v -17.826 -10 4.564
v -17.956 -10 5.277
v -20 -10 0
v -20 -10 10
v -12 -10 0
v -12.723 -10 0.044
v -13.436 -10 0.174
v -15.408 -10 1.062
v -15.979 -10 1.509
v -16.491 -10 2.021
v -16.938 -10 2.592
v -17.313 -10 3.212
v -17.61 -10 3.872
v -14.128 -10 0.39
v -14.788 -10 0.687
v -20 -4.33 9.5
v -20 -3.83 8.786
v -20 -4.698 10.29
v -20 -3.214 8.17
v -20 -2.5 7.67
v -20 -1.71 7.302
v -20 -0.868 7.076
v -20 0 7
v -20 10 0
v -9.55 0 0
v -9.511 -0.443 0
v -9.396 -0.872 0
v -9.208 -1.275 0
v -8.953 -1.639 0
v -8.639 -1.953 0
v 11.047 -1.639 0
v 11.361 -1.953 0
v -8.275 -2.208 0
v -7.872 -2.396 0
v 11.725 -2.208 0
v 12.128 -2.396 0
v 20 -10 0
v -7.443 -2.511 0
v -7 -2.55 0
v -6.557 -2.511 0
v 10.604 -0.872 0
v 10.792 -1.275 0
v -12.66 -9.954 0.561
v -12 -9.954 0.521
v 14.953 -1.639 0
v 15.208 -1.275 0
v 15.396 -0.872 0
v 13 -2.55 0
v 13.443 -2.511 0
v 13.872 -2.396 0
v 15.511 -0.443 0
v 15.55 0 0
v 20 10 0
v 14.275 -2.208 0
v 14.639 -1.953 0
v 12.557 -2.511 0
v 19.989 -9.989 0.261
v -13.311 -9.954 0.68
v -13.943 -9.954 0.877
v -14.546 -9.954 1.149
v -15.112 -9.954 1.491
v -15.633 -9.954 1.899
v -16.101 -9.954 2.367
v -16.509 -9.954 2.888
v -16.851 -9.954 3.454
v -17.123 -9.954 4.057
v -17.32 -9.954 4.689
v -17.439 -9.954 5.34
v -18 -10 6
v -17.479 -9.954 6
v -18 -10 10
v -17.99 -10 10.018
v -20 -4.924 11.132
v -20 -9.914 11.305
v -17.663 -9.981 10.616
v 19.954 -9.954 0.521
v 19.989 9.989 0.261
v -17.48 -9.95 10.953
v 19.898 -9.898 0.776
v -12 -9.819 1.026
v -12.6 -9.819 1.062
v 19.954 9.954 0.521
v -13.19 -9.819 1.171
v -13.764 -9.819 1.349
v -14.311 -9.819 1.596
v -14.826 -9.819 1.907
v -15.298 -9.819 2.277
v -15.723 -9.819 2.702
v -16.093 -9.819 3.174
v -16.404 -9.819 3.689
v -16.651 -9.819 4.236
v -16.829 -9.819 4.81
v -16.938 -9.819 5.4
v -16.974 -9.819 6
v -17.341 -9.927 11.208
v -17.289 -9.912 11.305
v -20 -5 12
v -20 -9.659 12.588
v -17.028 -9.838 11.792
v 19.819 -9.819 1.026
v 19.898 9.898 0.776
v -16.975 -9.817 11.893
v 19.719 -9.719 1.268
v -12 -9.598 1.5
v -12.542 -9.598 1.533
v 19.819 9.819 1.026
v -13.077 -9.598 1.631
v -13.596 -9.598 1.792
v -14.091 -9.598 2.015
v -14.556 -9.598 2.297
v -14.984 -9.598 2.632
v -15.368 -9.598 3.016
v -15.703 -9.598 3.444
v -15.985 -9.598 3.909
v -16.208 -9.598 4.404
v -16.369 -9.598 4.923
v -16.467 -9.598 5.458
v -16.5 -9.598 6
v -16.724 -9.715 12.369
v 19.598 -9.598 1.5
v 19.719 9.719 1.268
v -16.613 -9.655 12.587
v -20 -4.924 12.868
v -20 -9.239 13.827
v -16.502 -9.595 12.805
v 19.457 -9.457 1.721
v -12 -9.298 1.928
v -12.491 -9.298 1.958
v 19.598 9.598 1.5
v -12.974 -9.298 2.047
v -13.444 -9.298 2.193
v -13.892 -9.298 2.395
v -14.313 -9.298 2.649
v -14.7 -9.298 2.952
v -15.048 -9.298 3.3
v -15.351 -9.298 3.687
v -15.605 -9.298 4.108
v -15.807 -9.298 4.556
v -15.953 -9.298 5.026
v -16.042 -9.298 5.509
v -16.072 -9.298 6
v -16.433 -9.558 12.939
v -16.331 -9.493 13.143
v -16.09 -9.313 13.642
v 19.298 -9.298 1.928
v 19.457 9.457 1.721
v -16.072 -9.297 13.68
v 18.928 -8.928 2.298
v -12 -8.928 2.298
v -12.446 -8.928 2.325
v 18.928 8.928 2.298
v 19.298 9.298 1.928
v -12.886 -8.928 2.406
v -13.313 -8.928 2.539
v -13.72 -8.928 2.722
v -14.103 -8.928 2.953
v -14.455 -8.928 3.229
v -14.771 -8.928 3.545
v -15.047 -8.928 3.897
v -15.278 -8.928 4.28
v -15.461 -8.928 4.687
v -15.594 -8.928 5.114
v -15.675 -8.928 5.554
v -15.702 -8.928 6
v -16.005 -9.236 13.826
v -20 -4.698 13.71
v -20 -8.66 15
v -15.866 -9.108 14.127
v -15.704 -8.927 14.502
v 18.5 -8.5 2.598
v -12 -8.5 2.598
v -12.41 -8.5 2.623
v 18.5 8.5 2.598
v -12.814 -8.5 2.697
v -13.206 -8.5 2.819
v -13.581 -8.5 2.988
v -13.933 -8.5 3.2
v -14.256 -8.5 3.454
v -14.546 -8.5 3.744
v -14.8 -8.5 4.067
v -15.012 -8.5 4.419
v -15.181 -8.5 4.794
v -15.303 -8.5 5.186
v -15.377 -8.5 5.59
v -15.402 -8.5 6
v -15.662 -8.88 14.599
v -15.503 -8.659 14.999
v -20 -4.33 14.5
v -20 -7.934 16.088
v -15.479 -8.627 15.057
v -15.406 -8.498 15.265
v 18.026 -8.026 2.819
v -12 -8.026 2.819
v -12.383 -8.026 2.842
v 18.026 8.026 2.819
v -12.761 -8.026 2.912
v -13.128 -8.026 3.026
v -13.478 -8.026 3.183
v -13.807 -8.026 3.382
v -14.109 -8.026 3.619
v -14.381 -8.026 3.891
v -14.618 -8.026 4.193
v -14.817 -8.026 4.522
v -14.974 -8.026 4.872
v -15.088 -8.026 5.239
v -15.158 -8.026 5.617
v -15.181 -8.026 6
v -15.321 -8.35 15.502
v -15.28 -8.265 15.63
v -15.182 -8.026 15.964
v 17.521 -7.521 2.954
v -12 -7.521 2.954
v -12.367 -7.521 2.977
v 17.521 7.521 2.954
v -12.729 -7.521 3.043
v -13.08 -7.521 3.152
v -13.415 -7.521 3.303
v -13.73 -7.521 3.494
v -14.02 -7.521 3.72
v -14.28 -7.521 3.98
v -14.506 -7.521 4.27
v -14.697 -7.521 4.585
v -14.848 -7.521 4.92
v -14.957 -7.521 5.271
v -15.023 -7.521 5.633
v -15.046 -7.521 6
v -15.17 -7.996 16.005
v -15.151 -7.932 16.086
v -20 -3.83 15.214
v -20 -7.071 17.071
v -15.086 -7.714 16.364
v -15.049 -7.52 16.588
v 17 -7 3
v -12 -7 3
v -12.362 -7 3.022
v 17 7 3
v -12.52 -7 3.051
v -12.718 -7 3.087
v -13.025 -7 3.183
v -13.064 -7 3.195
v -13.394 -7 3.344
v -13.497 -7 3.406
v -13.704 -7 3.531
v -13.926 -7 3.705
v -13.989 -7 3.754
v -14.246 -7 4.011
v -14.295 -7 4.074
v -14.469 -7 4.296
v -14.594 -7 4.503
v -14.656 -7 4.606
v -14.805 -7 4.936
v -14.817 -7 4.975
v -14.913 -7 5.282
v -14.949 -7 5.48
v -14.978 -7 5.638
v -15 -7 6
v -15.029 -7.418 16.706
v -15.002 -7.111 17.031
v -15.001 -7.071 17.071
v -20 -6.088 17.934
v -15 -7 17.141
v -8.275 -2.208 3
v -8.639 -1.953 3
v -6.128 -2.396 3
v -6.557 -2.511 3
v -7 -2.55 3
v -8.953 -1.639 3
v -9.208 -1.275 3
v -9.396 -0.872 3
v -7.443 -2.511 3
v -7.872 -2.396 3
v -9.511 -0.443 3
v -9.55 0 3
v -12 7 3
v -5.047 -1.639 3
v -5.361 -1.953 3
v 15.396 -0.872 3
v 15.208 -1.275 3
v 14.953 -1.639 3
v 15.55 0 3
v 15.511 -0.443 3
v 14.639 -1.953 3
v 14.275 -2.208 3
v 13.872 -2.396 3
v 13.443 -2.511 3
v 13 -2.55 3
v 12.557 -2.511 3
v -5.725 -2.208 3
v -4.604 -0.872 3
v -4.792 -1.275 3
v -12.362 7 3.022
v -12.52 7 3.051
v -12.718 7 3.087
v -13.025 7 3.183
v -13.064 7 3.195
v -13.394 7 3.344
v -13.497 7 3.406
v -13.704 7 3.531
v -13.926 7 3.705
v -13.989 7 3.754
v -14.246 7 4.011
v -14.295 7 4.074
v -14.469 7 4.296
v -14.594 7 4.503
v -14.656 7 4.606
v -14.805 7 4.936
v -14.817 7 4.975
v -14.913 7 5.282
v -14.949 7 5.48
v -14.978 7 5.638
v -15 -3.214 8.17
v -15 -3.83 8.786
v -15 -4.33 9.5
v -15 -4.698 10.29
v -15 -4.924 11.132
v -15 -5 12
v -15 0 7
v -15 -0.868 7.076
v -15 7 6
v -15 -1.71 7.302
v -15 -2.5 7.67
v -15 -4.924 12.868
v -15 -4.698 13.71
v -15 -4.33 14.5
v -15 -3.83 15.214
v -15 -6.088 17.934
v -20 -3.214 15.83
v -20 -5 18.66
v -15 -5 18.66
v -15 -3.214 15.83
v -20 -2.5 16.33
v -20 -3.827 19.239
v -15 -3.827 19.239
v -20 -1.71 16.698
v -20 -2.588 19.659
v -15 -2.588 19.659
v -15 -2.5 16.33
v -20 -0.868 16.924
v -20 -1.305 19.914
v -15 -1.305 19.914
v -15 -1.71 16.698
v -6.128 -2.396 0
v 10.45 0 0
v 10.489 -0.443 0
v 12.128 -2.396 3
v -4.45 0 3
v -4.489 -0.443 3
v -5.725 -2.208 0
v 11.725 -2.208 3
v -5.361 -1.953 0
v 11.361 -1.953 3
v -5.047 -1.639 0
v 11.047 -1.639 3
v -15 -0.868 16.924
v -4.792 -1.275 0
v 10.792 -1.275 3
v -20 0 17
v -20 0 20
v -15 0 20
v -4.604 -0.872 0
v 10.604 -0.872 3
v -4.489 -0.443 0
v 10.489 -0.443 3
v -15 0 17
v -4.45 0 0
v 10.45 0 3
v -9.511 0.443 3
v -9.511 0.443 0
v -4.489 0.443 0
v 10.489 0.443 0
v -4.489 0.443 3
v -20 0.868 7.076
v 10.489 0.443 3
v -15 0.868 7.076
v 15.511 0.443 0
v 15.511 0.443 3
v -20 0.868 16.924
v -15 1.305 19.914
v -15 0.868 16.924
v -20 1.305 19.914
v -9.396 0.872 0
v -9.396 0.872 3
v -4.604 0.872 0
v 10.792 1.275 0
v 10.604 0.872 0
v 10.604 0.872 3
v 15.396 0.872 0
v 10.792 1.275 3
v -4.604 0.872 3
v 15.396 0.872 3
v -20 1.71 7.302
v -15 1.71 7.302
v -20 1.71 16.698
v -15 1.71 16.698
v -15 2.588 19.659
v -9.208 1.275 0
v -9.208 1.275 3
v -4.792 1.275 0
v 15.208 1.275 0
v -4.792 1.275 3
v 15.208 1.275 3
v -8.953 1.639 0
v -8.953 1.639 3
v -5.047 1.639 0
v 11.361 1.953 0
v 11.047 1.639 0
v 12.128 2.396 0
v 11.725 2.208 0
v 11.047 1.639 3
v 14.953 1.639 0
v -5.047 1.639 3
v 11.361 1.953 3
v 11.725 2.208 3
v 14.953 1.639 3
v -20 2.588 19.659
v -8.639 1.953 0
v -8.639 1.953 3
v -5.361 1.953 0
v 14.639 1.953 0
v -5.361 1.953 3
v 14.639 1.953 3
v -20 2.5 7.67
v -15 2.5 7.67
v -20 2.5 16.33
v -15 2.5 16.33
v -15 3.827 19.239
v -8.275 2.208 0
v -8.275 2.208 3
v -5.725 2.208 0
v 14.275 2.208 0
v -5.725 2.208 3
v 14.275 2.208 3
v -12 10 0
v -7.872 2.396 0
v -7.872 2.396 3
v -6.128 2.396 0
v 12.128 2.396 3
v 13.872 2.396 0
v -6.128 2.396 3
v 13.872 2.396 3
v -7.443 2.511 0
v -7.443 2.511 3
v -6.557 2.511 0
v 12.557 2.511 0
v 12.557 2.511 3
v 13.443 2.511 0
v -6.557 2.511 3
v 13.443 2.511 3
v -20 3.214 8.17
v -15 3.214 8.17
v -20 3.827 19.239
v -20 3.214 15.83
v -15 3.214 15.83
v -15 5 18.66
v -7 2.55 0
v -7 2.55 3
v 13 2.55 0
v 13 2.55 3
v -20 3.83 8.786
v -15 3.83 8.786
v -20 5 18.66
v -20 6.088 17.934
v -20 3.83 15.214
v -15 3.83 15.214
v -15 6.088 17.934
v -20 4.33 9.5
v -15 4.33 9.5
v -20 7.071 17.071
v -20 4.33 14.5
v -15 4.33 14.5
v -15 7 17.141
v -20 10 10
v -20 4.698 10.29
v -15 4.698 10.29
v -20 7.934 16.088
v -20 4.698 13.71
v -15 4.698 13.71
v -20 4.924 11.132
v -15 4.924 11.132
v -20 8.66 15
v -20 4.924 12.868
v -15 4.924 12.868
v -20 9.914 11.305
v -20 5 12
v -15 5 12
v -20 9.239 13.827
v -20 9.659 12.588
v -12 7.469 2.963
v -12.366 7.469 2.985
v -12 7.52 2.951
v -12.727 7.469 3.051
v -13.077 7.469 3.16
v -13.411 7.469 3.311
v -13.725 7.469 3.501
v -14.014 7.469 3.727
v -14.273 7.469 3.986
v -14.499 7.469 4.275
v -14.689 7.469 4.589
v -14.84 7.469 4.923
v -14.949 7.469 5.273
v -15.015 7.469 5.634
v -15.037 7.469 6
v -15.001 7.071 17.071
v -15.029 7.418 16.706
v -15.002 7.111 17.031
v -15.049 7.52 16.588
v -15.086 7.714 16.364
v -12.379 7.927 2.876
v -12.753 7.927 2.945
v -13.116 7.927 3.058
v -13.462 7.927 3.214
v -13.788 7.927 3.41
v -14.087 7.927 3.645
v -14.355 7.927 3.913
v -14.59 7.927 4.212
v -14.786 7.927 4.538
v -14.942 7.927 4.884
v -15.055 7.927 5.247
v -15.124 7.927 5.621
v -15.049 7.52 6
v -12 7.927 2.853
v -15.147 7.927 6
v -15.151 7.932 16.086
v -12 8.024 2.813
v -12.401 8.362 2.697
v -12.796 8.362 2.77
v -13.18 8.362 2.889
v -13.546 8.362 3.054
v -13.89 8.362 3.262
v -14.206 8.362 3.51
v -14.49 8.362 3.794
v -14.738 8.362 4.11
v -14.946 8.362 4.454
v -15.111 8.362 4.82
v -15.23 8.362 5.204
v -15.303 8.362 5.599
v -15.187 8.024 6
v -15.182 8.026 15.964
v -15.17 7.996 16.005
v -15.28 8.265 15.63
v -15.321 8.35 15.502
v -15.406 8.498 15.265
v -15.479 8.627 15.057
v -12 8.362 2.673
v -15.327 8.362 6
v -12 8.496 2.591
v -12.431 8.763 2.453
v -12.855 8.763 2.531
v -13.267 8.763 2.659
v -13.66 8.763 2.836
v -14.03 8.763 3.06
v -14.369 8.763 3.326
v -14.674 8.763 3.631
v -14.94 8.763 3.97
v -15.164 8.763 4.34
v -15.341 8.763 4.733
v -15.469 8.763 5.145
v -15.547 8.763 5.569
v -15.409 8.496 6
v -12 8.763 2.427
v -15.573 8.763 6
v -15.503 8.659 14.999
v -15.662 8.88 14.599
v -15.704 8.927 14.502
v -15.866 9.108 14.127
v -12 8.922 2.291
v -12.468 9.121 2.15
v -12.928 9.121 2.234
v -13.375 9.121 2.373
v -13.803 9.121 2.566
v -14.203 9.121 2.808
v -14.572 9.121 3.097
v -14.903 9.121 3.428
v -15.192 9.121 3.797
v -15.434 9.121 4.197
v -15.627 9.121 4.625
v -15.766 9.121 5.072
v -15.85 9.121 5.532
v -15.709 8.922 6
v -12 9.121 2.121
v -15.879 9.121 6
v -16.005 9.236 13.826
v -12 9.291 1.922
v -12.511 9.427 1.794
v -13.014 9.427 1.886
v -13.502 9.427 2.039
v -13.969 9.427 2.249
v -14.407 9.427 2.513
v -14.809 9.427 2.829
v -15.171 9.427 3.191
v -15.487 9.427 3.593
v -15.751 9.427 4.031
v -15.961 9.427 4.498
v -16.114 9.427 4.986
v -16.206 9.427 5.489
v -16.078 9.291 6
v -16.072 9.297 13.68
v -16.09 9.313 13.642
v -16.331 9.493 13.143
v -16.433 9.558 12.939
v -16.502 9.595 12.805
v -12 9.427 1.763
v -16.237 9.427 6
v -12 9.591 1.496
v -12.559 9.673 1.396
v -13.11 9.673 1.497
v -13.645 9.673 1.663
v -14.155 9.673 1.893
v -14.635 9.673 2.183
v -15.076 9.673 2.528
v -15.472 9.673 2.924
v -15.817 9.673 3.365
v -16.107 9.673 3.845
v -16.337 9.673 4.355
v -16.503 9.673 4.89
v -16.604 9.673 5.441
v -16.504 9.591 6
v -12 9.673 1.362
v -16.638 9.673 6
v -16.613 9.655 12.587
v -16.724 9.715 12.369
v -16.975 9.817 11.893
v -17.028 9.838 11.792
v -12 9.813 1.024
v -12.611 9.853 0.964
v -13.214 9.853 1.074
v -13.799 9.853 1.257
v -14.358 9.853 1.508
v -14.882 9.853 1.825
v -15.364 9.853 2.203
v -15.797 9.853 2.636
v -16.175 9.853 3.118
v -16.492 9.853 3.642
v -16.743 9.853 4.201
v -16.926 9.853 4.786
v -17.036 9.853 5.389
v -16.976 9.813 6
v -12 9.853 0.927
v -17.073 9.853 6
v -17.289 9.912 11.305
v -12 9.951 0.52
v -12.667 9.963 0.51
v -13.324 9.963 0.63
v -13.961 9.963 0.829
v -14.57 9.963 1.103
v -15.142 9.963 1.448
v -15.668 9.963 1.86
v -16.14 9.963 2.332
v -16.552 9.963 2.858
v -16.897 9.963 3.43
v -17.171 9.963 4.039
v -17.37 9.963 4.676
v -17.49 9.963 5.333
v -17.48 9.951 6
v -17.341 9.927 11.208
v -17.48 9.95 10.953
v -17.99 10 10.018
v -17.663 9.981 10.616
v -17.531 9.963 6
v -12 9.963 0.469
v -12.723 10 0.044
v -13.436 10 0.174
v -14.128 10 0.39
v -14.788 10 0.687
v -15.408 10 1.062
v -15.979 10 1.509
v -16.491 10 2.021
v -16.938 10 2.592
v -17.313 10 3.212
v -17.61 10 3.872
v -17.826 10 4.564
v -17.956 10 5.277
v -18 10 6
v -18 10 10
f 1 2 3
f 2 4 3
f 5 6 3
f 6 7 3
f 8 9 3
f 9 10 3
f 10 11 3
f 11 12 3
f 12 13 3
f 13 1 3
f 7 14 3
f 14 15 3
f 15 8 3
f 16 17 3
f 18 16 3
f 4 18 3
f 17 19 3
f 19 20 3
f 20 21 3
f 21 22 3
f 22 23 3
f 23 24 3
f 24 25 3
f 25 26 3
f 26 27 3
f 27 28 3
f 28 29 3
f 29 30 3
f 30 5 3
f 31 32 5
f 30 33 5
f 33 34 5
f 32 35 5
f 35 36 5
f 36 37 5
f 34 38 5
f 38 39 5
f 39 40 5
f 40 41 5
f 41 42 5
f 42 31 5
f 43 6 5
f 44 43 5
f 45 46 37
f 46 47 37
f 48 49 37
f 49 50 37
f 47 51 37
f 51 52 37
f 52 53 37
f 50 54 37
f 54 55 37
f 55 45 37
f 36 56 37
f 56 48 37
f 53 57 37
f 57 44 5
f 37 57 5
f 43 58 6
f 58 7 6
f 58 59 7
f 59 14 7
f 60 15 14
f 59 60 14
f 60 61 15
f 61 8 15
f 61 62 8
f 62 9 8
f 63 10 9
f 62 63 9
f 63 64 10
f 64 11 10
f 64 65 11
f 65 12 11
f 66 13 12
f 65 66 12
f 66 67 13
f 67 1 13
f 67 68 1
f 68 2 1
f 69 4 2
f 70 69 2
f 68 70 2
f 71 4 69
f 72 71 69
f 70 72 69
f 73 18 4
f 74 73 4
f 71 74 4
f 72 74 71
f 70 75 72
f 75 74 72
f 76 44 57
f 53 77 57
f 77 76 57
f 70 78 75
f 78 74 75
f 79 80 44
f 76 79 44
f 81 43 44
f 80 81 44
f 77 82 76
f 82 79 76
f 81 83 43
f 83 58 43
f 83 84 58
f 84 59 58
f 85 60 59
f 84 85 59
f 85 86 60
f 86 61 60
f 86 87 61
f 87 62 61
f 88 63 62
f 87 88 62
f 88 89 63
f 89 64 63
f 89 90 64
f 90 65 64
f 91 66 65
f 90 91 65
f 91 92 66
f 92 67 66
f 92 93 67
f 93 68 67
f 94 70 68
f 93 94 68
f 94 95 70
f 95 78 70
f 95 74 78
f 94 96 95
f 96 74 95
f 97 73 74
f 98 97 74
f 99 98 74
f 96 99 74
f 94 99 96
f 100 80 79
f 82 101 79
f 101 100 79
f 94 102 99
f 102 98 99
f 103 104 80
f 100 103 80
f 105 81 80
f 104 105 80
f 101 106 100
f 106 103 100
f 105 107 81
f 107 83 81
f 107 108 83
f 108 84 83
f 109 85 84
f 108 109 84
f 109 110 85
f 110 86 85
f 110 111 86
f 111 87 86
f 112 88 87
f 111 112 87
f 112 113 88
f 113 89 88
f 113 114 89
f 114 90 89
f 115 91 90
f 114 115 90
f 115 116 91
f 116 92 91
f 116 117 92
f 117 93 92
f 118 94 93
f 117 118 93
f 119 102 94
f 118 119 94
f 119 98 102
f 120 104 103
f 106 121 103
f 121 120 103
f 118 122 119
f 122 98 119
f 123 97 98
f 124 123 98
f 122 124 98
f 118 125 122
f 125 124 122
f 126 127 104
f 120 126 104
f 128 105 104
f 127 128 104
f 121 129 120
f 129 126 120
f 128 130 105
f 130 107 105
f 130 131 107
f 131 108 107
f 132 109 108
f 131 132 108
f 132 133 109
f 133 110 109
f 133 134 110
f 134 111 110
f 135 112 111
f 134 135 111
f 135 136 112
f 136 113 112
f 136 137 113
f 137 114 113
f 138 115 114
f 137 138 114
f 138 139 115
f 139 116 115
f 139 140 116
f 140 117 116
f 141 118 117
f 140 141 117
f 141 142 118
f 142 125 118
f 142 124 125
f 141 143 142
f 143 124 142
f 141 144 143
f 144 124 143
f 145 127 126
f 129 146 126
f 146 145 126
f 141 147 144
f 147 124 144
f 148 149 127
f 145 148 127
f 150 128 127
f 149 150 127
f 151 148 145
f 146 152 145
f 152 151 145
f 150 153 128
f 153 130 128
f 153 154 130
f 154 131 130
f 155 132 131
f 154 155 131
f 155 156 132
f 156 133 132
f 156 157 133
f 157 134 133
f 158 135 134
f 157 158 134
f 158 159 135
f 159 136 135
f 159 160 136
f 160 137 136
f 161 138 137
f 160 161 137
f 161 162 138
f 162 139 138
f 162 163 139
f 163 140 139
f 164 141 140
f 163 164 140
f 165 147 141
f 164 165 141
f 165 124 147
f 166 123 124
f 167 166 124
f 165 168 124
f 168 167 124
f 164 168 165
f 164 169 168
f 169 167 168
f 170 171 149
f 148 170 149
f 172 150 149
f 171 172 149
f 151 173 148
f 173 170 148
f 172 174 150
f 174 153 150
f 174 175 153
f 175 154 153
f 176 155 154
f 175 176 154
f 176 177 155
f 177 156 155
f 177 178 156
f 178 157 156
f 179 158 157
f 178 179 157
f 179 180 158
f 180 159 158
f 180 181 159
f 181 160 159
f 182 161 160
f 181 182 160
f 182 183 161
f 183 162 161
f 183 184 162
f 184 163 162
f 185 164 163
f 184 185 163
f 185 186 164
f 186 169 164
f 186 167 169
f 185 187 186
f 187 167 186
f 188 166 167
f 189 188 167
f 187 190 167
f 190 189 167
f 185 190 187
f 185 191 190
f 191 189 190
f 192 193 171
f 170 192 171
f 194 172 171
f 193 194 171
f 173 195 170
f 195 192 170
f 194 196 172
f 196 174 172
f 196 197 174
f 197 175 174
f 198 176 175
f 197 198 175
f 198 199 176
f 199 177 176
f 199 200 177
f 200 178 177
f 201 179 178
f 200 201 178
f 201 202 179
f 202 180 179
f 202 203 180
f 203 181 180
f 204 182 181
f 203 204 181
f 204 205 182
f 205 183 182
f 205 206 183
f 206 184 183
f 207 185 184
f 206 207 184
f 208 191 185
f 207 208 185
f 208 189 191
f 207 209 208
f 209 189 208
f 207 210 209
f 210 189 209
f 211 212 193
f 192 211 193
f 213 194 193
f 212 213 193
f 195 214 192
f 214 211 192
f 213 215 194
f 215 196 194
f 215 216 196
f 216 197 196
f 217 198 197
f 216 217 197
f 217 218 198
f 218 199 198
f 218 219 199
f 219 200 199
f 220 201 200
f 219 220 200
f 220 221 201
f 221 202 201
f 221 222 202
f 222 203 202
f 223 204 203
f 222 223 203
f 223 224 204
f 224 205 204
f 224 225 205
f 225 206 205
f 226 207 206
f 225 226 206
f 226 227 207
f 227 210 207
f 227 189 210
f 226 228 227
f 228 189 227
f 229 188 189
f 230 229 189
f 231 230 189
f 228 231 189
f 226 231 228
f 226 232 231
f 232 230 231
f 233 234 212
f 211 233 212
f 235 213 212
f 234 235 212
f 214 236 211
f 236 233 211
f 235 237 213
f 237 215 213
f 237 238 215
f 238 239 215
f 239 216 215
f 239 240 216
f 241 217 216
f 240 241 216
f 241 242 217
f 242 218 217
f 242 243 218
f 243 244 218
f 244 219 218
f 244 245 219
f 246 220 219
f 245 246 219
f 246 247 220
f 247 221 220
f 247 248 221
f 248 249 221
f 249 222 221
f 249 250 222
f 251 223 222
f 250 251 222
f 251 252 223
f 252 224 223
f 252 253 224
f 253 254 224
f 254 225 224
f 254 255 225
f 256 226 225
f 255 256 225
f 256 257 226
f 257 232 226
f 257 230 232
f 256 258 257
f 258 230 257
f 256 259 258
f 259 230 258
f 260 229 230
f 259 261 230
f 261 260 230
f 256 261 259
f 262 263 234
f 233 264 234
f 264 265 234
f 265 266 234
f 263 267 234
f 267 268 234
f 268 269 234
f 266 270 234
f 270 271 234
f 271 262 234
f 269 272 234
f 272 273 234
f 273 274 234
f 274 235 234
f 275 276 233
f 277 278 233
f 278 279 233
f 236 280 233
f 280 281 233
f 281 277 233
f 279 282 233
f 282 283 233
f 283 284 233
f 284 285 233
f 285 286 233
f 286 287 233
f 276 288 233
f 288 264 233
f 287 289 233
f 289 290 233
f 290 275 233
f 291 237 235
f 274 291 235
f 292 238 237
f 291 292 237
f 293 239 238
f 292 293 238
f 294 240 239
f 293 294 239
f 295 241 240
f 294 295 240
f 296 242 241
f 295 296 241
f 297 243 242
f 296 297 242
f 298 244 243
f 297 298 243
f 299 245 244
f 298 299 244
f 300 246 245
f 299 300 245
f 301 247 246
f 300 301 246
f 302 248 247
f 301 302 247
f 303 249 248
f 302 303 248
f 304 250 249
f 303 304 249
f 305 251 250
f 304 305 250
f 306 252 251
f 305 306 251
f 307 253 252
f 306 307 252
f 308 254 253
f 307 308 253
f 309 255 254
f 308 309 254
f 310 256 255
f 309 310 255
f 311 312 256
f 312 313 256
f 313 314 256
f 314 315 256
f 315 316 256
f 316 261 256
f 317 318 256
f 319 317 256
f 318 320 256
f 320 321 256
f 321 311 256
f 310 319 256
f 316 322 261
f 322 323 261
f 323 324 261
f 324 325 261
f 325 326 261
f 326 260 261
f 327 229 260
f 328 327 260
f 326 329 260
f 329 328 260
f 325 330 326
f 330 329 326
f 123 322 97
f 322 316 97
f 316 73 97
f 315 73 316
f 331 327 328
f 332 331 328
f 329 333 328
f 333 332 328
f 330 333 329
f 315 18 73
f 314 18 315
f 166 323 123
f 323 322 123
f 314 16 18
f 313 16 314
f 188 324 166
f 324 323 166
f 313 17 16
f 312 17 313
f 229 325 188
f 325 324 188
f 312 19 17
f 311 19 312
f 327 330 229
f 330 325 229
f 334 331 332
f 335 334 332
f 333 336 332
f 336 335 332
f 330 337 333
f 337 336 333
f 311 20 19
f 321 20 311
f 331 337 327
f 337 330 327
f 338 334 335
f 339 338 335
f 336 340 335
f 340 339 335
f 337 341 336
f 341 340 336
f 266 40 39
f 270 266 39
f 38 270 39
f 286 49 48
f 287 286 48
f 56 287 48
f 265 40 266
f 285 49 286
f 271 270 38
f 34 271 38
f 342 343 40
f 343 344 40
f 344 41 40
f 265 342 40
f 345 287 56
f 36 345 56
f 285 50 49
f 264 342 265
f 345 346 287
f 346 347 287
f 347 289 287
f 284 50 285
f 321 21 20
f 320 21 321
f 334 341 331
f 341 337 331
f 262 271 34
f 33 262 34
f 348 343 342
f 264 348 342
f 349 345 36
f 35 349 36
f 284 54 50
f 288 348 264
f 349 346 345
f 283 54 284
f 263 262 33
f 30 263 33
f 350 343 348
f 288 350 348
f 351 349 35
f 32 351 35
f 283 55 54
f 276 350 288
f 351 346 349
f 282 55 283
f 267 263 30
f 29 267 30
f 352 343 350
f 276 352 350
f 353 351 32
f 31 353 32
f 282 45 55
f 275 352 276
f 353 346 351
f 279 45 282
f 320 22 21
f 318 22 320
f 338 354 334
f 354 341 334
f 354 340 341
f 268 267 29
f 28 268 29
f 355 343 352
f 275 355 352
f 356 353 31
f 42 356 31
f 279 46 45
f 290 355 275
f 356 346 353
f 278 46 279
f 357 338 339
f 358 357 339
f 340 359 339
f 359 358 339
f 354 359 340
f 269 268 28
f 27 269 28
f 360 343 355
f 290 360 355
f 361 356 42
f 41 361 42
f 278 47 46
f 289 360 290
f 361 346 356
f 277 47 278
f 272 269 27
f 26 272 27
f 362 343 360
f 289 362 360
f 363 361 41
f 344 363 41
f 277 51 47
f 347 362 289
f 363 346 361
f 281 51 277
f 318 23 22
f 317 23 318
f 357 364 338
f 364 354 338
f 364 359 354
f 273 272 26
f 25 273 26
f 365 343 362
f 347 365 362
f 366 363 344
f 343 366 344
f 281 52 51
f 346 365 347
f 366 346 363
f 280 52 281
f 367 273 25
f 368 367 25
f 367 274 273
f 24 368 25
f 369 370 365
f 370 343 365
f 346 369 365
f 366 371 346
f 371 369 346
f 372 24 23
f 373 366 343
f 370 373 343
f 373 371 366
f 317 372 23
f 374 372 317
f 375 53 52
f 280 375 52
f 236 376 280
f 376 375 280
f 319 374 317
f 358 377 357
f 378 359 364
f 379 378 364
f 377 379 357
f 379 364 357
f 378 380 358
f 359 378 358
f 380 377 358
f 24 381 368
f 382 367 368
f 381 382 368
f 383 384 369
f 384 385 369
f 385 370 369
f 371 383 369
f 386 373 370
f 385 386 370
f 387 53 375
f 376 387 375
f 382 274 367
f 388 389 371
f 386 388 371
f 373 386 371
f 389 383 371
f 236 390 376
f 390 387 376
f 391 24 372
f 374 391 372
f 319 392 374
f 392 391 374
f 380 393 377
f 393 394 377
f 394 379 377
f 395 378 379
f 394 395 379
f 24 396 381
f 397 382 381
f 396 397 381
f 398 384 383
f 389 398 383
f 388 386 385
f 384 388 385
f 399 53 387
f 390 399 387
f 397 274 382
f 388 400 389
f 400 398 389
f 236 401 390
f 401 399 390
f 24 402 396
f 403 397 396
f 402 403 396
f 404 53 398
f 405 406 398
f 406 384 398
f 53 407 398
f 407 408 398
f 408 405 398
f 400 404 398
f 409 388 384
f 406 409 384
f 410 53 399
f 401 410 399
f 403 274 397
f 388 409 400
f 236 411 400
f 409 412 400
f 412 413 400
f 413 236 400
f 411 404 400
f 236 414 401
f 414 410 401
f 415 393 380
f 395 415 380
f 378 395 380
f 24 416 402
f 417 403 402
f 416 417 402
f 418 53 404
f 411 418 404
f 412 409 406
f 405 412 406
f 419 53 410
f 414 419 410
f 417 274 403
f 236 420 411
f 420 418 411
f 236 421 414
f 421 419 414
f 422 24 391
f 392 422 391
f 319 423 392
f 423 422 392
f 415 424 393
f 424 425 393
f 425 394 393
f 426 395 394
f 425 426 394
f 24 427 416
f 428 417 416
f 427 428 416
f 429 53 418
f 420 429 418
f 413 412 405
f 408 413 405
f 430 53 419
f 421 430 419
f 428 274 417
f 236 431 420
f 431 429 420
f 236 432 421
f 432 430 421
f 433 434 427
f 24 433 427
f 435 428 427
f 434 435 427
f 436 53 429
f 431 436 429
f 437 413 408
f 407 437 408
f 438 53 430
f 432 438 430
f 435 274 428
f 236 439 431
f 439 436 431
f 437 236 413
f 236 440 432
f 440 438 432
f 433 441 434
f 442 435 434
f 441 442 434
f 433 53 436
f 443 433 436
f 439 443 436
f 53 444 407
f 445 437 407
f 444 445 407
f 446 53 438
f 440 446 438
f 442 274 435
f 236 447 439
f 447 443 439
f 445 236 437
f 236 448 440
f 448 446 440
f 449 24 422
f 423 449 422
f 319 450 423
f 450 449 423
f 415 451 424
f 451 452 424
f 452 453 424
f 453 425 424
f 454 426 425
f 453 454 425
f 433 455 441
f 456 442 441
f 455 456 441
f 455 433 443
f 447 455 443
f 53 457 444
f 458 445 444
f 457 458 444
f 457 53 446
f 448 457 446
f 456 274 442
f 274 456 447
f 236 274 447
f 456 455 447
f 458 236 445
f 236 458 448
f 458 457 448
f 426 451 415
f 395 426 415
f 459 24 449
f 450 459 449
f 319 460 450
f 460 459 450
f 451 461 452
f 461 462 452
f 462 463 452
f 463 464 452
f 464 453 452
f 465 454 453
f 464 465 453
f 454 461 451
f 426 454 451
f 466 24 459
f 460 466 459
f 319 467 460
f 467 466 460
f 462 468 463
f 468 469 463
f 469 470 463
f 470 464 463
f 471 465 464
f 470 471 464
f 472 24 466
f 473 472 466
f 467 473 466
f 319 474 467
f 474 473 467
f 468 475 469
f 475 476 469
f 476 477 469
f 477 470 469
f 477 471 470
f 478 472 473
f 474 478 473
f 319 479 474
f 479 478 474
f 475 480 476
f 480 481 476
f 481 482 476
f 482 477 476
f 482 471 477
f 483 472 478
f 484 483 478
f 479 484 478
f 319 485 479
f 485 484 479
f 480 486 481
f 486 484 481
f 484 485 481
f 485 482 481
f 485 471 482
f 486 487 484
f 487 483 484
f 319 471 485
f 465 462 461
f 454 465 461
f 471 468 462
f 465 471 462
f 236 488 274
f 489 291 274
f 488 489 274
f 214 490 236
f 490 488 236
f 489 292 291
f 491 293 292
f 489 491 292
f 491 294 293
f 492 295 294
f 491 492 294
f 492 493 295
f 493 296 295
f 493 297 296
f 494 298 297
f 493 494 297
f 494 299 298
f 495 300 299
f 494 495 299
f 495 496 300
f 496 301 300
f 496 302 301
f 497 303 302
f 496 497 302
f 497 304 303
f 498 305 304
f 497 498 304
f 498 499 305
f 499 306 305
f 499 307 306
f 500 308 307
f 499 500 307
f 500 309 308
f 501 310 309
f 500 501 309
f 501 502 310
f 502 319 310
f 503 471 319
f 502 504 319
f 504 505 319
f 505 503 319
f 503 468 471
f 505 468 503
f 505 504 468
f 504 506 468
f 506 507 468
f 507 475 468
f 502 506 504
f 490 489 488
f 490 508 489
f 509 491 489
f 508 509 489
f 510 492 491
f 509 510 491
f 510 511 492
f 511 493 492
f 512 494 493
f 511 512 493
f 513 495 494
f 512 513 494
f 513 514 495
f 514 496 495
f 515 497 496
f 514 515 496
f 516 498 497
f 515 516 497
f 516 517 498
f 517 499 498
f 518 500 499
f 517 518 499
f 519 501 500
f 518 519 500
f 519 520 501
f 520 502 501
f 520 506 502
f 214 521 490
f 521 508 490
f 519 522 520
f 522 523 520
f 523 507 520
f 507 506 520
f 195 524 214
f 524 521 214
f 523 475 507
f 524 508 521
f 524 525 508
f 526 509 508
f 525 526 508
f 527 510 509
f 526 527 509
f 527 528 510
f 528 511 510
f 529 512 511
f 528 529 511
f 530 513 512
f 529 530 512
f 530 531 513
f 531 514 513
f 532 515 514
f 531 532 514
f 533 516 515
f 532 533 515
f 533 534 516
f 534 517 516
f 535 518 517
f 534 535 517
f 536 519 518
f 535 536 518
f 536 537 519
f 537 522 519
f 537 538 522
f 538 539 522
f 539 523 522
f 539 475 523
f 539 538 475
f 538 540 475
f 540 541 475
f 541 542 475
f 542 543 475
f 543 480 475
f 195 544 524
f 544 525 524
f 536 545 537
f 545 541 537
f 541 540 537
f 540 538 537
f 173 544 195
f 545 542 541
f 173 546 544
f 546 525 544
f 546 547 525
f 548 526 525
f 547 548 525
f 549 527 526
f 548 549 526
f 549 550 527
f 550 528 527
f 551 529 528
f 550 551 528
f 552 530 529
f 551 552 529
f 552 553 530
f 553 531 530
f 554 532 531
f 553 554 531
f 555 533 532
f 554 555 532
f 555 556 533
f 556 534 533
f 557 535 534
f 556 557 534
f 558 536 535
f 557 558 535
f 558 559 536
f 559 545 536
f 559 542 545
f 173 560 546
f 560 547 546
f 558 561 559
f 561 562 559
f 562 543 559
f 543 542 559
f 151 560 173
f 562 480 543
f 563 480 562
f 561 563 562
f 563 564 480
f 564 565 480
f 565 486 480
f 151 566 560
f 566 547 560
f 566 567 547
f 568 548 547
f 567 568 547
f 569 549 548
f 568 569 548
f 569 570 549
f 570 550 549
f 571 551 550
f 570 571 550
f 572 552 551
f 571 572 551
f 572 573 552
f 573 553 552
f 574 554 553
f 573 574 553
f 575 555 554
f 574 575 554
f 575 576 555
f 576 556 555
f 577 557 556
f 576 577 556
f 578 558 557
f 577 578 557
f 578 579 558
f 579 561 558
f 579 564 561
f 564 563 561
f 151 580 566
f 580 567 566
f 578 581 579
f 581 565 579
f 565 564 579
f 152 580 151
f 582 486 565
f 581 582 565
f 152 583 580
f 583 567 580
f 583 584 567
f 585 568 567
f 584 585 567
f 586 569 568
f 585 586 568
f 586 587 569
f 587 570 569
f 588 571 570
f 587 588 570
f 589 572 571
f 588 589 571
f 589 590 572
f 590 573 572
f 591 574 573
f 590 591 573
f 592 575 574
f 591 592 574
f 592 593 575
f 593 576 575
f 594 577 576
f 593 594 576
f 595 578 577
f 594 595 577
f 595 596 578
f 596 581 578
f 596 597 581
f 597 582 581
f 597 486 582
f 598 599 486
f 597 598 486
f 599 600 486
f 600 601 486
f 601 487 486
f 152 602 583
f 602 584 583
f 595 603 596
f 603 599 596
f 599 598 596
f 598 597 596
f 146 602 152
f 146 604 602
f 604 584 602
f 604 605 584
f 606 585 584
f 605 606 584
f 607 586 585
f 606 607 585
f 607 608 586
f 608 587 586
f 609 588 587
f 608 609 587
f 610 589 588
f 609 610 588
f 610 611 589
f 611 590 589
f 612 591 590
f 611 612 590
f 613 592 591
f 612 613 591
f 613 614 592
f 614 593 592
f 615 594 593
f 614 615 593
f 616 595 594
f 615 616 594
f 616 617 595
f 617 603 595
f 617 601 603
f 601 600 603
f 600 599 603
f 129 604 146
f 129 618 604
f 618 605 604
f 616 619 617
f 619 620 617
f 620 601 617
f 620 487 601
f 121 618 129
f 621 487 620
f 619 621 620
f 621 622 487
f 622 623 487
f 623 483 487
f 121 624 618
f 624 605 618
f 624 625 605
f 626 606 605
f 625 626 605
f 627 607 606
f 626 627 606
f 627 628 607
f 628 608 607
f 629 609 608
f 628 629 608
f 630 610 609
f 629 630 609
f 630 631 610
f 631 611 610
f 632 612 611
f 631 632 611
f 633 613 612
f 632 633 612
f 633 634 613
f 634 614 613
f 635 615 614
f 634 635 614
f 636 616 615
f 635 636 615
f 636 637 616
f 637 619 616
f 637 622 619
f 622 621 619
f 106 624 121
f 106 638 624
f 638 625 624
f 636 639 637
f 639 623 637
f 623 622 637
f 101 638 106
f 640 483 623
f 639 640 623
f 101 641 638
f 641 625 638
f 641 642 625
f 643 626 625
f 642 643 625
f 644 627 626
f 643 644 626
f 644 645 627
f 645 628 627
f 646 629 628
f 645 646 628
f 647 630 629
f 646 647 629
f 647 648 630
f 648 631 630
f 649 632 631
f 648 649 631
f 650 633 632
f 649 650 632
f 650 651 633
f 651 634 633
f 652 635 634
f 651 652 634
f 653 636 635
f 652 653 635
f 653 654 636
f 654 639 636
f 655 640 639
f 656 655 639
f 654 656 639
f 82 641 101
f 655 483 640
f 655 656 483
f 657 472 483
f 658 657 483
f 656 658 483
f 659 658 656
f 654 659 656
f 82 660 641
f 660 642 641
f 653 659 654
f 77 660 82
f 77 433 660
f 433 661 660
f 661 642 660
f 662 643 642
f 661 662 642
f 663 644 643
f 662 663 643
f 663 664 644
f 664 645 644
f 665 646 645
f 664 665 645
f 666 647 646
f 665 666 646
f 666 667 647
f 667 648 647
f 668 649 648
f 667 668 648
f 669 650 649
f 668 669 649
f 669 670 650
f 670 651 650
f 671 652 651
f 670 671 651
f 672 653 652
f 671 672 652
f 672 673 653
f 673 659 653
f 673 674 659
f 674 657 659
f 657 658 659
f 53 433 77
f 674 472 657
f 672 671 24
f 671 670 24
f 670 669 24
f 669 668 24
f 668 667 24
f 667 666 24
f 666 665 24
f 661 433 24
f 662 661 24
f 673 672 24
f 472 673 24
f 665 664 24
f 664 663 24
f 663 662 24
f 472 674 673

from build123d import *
from OCP.BRepFilletAPI import BRepFilletAPI_MakeFillet

# Parameters (mm, degrees)
SKETCH1_W           = 40
SKETCH1_H           = 20
BOSS_EXTRUDE1_DEPTH = 3
SKETCH2_W           = 5
SKETCH2_H           = 20
BOSS_EXTRUDE2_DEPTH = 20
SKETCH3_R           = 5
CUT_EXTRUDE1_DEPTH  = 31
FILLET2_R           = 10
FILLET2_R_2         = 3
SKETCH4_R           = 2.55
CUT_EXTRUDE2_DEPTH  = 31.000000167


with BuildPart() as part:
    # Sketch1 → Boss-Extrude1 (new body)
    with BuildSketch(Plane.XY):
        Rectangle(SKETCH1_W, SKETCH1_H)
    extrude(amount=BOSS_EXTRUDE1_DEPTH)

    # Sketch2 → Boss-Extrude2 (add)
    with BuildSketch(Plane.XY):
        with Locations((-17.5, 0)):
            Rectangle(SKETCH2_W, SKETCH2_H)
    extrude(amount=BOSS_EXTRUDE2_DEPTH)

    # Sketch3 → Cut-Extrude1 (cut, through all)
    with BuildSketch(Plane(origin=(0, 0, 0), x_dir=(0, 0, -1), z_dir=(1, 0, 0))):
        with Locations((-12, 0)):
            Circle(SKETCH3_R)
    extrude(amount=-CUT_EXTRUDE1_DEPTH, mode=Mode.SUBTRACT)

    # Fillet2
    fillet2_edges_1 = [part.edges().sort_by_distance(p)[0] for p in [
        (-17.5, -10, 20),
        (-17.5, 10, 20),
    ]]
    fillet2_edges_2 = [part.edges().sort_by_distance(p)[0] for p in [
        (2.5, -10, 3),
        (-15, -10, 11.5),
        (-15, 0, 3),
        (-15, 10, 11.5),
        (20, 0, 3),
        (2.5, 10, 3),
    ]]
    fillet2 = BRepFilletAPI_MakeFillet(part.part.solid().wrapped)
    for e in fillet2_edges_1:
        fillet2.Add(FILLET2_R - 0.0001, e.wrapped)
    for e in fillet2_edges_2:
        fillet2.Add(FILLET2_R_2 - 0.0001, e.wrapped)
    add(Compound.cast(fillet2.Shape()), mode=Mode.REPLACE)  # a hair under: the kernel refuses the full size

    # Sketch4 → Cut-Extrude2 (cut, through all)
    with BuildSketch(Plane.XY):
        with Locations(Location((13, 0, 0), (0, 0, 180))):
            Circle(SKETCH4_R)
        with Locations(Location((-7, 0, 0), (0, 0, 180))):
            Circle(SKETCH4_R)
    extrude(amount=CUT_EXTRUDE2_DEPTH, mode=Mode.SUBTRACT)


solid = part.part
